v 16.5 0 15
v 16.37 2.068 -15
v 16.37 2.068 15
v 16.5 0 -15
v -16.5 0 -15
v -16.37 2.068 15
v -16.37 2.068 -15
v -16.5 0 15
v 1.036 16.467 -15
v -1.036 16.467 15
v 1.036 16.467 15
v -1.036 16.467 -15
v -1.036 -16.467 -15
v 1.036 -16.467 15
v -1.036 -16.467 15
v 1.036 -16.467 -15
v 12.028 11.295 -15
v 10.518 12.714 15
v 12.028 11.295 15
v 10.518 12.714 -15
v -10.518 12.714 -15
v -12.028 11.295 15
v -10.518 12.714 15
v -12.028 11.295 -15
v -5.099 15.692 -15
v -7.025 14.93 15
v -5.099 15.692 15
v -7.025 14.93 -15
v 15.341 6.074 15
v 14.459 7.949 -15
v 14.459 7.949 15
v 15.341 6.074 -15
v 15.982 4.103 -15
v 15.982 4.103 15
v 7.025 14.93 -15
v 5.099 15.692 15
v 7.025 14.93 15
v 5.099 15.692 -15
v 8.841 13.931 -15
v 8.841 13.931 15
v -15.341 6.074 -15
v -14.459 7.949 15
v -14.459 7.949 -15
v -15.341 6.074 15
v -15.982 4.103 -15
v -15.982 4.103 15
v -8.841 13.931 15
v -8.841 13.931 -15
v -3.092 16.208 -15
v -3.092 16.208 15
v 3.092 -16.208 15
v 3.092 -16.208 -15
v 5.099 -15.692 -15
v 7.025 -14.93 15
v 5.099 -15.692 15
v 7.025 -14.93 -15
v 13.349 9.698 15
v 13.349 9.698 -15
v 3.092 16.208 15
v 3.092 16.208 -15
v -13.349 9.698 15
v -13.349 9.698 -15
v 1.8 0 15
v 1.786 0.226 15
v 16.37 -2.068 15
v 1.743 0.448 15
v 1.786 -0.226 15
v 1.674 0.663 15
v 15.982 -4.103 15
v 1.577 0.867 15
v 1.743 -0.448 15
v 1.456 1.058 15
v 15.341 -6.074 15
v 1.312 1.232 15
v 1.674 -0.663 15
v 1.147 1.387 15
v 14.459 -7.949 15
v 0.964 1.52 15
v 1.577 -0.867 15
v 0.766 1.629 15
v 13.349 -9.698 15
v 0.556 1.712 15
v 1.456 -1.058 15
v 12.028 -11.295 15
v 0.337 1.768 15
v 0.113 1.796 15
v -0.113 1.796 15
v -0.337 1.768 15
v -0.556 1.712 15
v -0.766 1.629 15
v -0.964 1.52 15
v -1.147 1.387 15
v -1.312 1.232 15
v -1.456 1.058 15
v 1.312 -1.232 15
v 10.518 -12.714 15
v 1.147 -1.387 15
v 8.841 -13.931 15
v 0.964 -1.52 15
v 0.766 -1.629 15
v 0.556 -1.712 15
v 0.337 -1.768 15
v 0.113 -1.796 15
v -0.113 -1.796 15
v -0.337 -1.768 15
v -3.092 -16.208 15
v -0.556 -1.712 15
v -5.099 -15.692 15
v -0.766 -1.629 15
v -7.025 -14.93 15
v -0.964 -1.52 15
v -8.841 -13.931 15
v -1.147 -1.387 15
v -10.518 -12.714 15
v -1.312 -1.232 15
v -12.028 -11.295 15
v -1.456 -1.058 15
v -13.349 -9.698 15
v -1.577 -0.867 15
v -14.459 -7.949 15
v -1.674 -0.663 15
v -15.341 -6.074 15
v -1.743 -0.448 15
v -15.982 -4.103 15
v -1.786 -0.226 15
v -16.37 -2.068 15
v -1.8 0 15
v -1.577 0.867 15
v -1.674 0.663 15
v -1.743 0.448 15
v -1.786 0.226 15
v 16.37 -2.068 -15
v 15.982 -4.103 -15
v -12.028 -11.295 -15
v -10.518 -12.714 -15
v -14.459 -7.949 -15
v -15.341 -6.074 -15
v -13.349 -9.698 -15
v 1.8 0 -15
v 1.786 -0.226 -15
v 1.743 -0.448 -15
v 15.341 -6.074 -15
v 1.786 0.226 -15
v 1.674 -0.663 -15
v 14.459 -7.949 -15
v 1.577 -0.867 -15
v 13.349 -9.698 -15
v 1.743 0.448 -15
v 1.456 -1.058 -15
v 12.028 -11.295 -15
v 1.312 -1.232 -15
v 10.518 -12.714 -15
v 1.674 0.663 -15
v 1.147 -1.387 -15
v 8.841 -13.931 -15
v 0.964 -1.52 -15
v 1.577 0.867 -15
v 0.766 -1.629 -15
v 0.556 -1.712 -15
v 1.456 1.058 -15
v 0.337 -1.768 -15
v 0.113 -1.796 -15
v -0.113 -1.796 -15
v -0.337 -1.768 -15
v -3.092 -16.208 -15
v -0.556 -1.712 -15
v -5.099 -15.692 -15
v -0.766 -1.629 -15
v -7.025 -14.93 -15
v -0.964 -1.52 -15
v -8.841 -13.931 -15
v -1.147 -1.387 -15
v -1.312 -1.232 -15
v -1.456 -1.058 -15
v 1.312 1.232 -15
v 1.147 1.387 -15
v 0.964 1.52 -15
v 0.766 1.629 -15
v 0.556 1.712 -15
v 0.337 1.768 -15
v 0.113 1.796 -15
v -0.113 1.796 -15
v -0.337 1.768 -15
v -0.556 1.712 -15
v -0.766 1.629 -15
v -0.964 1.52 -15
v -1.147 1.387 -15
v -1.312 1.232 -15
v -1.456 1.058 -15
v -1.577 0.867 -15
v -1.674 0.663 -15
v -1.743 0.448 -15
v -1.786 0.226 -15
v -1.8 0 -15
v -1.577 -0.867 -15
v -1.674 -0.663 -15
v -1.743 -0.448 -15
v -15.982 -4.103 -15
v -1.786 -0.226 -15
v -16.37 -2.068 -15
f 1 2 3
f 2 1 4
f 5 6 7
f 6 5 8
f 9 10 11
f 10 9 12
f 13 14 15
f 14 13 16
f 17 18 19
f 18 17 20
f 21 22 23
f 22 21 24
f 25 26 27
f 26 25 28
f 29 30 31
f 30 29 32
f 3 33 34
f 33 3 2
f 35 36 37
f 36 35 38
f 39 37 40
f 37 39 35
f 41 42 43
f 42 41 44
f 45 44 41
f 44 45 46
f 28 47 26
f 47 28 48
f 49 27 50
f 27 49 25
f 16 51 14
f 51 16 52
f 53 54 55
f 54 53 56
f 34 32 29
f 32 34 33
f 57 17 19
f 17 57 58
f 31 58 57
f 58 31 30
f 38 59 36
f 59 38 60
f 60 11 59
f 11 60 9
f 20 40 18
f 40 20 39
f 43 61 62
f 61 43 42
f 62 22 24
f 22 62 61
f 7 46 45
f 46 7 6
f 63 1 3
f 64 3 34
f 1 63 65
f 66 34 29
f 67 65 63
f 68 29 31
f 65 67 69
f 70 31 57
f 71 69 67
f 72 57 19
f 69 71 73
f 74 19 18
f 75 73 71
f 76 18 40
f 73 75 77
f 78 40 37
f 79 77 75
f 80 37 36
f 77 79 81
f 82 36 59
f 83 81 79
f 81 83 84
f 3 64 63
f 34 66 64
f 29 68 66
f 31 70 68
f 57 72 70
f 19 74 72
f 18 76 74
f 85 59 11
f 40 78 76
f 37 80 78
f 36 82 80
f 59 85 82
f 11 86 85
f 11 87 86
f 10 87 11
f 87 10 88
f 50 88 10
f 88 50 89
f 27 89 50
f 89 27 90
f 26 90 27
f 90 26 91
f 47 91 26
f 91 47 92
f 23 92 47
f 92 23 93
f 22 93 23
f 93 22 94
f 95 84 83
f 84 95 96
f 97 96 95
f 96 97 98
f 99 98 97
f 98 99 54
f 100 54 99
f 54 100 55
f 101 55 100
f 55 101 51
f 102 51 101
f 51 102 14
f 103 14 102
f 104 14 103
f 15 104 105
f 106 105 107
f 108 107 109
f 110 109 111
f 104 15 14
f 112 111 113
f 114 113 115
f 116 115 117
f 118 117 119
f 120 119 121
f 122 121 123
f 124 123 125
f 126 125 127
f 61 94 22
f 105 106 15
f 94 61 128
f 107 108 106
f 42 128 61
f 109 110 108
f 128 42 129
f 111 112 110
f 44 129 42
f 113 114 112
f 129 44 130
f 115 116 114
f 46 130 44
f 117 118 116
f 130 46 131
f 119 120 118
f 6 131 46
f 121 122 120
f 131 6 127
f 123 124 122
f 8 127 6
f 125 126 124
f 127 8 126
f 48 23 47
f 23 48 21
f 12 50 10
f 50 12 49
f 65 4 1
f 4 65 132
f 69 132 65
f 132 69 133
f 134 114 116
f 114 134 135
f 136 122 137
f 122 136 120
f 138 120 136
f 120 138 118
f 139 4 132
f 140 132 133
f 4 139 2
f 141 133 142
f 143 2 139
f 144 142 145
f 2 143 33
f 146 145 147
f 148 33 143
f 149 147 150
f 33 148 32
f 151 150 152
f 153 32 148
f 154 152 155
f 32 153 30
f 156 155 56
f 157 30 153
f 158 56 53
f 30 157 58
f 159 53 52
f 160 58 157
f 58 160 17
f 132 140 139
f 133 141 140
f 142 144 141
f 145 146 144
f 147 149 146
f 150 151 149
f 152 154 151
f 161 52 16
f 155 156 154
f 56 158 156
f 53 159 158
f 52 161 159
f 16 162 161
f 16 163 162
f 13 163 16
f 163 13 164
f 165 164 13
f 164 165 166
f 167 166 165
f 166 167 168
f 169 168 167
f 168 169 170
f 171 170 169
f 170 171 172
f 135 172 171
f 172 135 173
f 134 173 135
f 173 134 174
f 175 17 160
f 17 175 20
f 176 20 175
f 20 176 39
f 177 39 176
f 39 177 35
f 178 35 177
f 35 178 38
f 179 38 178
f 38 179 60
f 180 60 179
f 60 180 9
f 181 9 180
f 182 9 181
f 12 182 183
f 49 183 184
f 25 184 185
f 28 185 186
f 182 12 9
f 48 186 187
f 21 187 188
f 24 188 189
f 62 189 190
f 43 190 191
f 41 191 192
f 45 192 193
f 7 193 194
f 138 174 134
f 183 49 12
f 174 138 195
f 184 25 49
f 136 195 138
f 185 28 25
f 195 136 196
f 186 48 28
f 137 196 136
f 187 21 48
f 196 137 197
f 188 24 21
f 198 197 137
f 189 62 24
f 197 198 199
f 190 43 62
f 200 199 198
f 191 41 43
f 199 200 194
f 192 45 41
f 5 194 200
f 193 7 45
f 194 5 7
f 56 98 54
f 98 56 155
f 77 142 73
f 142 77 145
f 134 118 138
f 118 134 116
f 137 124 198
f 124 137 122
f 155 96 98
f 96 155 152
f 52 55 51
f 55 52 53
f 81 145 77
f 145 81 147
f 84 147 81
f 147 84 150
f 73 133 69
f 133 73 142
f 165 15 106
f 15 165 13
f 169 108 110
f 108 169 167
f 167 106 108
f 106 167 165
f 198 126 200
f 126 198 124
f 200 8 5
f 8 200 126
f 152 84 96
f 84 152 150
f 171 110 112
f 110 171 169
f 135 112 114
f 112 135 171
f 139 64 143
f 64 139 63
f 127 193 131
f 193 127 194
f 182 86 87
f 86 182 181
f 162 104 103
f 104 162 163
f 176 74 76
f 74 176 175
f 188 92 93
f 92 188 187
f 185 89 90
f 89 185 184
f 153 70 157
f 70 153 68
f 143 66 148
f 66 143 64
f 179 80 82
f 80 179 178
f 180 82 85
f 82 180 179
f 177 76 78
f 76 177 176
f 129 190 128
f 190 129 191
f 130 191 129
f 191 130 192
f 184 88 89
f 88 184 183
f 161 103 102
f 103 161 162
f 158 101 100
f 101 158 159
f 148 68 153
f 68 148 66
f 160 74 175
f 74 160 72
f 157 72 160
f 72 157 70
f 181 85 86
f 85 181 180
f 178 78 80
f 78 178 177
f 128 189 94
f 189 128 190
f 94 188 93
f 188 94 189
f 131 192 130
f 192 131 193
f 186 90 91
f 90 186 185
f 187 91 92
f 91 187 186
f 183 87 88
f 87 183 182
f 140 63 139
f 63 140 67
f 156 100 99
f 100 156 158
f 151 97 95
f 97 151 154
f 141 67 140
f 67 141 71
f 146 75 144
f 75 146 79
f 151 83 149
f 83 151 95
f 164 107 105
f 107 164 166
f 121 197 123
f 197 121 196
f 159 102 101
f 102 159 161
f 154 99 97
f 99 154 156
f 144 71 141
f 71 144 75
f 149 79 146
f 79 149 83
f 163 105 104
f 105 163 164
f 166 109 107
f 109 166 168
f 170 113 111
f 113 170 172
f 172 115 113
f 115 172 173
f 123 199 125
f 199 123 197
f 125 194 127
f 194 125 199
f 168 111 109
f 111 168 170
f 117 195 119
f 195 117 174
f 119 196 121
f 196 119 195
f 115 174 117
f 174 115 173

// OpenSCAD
$fn = 50;


difference() {
	union() {
		translate(v = [0, 0, -15.0000000000]) {
			cylinder(h = 30, r = 16.5000000000);
		}
	}
	union() {
		translate(v = [0, 0, -100.0000000000]) {
			cylinder(h = 200, r = 1.8000000000);
		}
	}
}
